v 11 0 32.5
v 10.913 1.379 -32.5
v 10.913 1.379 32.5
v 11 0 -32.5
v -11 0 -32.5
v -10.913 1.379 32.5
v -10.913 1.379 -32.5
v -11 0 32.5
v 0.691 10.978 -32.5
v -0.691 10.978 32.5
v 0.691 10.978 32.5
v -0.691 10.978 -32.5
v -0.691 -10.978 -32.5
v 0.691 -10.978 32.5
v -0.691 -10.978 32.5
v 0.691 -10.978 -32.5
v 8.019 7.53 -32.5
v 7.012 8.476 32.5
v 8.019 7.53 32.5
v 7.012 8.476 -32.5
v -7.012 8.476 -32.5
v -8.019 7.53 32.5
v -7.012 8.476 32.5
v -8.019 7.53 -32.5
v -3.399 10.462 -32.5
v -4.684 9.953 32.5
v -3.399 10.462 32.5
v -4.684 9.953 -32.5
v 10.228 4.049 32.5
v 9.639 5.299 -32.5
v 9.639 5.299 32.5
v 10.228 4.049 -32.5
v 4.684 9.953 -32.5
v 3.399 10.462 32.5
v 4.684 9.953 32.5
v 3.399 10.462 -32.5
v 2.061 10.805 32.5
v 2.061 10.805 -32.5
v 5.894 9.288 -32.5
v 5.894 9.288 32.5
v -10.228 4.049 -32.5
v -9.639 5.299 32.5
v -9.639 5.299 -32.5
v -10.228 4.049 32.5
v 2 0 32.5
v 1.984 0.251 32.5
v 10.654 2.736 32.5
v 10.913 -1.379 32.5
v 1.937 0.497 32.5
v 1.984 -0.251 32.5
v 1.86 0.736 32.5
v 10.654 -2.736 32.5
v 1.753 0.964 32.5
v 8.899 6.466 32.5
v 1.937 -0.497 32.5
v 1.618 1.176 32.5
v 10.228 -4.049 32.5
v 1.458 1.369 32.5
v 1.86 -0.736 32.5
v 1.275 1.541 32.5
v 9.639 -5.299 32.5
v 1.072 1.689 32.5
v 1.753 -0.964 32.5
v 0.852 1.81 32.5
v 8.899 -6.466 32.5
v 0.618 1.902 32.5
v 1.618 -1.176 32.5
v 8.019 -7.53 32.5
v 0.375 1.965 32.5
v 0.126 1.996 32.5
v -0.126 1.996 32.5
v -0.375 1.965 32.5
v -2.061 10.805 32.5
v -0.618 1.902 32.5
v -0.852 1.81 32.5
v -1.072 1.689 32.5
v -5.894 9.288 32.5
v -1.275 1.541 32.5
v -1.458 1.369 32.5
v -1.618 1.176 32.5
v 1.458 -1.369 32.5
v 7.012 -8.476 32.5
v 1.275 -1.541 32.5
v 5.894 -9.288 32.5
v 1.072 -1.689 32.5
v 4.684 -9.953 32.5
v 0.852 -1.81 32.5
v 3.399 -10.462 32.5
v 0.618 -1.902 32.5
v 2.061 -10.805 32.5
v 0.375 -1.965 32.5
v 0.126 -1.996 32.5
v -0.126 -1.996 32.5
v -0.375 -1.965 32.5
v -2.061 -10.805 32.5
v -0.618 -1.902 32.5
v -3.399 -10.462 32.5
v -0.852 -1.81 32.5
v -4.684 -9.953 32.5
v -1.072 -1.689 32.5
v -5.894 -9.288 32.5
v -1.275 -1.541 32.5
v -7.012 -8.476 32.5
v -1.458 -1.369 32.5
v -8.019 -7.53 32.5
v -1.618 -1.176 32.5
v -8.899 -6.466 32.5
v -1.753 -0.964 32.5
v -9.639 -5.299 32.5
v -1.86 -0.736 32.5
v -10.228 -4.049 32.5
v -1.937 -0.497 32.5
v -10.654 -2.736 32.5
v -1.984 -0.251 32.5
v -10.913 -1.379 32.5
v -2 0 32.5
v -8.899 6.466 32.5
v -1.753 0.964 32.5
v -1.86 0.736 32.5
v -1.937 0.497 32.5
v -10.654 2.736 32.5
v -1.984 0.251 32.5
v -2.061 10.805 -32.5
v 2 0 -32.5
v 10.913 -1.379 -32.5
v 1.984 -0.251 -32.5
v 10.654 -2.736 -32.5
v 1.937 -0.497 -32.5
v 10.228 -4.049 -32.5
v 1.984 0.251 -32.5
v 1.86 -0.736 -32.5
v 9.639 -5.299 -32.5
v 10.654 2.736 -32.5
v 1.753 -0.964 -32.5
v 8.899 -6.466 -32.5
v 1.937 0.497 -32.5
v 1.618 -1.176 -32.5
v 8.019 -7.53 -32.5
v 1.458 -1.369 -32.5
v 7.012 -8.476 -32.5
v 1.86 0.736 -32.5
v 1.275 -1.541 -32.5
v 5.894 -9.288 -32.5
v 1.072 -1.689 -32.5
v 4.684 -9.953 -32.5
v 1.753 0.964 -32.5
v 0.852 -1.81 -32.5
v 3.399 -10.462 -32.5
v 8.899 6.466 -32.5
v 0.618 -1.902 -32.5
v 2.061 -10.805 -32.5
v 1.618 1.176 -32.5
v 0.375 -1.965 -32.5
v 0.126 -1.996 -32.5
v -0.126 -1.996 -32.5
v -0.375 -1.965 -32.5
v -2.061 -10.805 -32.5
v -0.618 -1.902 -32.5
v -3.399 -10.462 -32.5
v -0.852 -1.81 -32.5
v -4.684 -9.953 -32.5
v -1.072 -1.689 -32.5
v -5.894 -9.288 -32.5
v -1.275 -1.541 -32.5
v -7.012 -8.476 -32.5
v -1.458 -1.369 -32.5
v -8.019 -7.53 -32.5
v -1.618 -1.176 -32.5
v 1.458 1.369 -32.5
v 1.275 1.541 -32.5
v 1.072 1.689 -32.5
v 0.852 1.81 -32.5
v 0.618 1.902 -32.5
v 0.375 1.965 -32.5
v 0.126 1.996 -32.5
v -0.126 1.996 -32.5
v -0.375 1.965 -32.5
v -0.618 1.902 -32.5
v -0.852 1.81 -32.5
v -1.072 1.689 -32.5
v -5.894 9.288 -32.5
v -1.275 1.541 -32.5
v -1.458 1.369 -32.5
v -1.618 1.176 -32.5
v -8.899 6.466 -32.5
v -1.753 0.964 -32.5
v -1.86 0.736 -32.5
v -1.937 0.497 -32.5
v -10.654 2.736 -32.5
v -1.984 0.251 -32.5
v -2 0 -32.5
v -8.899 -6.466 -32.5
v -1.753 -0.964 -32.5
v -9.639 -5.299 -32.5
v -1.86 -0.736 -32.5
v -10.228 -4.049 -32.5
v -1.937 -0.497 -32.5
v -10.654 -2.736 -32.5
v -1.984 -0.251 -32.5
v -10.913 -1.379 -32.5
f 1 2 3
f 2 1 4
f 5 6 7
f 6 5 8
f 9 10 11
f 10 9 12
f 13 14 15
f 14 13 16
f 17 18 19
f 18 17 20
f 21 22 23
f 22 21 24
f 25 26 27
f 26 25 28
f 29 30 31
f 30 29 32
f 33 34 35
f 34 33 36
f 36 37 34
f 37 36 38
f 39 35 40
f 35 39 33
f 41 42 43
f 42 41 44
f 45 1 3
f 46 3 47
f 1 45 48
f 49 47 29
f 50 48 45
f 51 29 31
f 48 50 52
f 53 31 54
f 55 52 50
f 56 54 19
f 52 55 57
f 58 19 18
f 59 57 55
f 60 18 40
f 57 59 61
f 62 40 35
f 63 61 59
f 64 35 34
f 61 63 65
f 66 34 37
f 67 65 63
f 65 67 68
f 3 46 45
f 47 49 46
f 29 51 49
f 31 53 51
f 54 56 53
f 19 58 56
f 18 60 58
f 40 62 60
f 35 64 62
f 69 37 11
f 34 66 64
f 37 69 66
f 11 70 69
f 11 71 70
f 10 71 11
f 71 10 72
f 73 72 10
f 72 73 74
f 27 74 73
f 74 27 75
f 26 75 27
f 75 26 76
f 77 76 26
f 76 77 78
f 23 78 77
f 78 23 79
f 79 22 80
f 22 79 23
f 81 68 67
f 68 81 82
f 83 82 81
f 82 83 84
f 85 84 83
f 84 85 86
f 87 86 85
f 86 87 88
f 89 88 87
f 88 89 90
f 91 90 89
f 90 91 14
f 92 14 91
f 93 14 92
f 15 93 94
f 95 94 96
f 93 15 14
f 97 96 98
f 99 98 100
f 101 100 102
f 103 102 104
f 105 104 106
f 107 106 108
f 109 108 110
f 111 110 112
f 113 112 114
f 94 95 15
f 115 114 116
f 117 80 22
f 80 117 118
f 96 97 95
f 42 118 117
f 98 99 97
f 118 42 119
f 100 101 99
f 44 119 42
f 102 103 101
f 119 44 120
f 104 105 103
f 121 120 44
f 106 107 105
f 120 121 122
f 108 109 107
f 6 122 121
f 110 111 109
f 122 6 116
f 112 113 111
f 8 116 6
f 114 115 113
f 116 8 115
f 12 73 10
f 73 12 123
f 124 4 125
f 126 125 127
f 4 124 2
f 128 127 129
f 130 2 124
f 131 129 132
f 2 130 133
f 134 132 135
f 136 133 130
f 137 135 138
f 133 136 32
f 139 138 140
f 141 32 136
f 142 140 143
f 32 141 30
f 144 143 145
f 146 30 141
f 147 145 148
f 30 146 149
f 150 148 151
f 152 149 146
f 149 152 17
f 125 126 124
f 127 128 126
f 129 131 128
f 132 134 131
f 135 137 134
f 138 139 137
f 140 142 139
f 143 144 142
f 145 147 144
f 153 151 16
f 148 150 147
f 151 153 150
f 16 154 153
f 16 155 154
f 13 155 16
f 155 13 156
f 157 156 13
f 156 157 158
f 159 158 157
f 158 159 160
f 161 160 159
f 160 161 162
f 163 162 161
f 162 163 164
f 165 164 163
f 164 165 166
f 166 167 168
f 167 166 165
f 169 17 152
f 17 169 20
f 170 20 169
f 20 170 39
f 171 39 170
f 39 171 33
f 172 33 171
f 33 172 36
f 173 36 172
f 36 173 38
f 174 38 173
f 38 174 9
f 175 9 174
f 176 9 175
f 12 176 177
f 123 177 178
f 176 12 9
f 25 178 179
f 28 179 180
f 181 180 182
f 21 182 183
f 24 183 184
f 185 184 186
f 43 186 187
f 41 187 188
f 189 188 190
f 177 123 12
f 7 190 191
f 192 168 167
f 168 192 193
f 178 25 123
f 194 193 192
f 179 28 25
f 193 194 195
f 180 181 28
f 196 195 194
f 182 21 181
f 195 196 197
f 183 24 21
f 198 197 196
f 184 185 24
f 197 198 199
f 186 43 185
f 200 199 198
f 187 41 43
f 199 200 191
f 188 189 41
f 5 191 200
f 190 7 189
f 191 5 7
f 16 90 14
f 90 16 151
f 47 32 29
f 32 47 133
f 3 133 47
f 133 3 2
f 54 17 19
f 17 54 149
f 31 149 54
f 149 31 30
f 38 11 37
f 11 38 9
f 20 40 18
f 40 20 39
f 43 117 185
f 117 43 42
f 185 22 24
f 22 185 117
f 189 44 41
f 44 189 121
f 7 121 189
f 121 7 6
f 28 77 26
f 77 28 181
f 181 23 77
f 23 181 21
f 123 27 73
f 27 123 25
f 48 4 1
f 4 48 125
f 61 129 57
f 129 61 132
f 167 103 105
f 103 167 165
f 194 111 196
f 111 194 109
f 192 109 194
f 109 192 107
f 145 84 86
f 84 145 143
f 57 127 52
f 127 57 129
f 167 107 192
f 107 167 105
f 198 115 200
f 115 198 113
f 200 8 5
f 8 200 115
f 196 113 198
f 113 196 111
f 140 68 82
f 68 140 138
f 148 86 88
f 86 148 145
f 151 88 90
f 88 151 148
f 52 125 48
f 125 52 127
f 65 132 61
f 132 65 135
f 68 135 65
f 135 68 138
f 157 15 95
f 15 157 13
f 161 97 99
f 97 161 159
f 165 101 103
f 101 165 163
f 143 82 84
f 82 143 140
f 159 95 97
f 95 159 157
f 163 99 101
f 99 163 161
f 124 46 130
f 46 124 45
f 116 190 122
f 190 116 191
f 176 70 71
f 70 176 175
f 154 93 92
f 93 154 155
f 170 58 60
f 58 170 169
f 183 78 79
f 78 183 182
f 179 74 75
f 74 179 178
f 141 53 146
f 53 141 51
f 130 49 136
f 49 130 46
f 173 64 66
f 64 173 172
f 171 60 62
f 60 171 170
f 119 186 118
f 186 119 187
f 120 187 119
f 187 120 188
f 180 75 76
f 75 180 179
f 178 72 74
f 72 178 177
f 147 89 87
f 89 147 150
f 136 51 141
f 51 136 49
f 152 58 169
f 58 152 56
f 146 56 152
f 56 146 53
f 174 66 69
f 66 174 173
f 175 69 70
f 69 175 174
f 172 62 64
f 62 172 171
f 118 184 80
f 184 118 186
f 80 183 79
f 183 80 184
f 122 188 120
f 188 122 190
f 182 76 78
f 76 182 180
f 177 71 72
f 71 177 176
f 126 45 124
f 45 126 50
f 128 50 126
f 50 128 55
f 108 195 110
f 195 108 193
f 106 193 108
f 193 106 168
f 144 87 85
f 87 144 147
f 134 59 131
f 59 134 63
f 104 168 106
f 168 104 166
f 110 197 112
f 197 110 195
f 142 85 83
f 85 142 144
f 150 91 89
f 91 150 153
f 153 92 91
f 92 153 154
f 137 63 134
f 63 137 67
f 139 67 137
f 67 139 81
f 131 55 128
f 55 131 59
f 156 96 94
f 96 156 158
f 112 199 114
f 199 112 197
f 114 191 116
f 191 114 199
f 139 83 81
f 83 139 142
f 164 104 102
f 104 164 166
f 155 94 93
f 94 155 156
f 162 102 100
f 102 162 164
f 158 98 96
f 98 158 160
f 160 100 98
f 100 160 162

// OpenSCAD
$fn = 50;


difference() {
	union() {
		translate(v = [0, 0, -32.5000000000]) {
			cylinder(h = 65, r = 11.0000000000);
		}
	}
	union() {
		translate(v = [0, 0, -100.0000000000]) {
			cylinder(h = 200, r = 2);
		}
	}
}
